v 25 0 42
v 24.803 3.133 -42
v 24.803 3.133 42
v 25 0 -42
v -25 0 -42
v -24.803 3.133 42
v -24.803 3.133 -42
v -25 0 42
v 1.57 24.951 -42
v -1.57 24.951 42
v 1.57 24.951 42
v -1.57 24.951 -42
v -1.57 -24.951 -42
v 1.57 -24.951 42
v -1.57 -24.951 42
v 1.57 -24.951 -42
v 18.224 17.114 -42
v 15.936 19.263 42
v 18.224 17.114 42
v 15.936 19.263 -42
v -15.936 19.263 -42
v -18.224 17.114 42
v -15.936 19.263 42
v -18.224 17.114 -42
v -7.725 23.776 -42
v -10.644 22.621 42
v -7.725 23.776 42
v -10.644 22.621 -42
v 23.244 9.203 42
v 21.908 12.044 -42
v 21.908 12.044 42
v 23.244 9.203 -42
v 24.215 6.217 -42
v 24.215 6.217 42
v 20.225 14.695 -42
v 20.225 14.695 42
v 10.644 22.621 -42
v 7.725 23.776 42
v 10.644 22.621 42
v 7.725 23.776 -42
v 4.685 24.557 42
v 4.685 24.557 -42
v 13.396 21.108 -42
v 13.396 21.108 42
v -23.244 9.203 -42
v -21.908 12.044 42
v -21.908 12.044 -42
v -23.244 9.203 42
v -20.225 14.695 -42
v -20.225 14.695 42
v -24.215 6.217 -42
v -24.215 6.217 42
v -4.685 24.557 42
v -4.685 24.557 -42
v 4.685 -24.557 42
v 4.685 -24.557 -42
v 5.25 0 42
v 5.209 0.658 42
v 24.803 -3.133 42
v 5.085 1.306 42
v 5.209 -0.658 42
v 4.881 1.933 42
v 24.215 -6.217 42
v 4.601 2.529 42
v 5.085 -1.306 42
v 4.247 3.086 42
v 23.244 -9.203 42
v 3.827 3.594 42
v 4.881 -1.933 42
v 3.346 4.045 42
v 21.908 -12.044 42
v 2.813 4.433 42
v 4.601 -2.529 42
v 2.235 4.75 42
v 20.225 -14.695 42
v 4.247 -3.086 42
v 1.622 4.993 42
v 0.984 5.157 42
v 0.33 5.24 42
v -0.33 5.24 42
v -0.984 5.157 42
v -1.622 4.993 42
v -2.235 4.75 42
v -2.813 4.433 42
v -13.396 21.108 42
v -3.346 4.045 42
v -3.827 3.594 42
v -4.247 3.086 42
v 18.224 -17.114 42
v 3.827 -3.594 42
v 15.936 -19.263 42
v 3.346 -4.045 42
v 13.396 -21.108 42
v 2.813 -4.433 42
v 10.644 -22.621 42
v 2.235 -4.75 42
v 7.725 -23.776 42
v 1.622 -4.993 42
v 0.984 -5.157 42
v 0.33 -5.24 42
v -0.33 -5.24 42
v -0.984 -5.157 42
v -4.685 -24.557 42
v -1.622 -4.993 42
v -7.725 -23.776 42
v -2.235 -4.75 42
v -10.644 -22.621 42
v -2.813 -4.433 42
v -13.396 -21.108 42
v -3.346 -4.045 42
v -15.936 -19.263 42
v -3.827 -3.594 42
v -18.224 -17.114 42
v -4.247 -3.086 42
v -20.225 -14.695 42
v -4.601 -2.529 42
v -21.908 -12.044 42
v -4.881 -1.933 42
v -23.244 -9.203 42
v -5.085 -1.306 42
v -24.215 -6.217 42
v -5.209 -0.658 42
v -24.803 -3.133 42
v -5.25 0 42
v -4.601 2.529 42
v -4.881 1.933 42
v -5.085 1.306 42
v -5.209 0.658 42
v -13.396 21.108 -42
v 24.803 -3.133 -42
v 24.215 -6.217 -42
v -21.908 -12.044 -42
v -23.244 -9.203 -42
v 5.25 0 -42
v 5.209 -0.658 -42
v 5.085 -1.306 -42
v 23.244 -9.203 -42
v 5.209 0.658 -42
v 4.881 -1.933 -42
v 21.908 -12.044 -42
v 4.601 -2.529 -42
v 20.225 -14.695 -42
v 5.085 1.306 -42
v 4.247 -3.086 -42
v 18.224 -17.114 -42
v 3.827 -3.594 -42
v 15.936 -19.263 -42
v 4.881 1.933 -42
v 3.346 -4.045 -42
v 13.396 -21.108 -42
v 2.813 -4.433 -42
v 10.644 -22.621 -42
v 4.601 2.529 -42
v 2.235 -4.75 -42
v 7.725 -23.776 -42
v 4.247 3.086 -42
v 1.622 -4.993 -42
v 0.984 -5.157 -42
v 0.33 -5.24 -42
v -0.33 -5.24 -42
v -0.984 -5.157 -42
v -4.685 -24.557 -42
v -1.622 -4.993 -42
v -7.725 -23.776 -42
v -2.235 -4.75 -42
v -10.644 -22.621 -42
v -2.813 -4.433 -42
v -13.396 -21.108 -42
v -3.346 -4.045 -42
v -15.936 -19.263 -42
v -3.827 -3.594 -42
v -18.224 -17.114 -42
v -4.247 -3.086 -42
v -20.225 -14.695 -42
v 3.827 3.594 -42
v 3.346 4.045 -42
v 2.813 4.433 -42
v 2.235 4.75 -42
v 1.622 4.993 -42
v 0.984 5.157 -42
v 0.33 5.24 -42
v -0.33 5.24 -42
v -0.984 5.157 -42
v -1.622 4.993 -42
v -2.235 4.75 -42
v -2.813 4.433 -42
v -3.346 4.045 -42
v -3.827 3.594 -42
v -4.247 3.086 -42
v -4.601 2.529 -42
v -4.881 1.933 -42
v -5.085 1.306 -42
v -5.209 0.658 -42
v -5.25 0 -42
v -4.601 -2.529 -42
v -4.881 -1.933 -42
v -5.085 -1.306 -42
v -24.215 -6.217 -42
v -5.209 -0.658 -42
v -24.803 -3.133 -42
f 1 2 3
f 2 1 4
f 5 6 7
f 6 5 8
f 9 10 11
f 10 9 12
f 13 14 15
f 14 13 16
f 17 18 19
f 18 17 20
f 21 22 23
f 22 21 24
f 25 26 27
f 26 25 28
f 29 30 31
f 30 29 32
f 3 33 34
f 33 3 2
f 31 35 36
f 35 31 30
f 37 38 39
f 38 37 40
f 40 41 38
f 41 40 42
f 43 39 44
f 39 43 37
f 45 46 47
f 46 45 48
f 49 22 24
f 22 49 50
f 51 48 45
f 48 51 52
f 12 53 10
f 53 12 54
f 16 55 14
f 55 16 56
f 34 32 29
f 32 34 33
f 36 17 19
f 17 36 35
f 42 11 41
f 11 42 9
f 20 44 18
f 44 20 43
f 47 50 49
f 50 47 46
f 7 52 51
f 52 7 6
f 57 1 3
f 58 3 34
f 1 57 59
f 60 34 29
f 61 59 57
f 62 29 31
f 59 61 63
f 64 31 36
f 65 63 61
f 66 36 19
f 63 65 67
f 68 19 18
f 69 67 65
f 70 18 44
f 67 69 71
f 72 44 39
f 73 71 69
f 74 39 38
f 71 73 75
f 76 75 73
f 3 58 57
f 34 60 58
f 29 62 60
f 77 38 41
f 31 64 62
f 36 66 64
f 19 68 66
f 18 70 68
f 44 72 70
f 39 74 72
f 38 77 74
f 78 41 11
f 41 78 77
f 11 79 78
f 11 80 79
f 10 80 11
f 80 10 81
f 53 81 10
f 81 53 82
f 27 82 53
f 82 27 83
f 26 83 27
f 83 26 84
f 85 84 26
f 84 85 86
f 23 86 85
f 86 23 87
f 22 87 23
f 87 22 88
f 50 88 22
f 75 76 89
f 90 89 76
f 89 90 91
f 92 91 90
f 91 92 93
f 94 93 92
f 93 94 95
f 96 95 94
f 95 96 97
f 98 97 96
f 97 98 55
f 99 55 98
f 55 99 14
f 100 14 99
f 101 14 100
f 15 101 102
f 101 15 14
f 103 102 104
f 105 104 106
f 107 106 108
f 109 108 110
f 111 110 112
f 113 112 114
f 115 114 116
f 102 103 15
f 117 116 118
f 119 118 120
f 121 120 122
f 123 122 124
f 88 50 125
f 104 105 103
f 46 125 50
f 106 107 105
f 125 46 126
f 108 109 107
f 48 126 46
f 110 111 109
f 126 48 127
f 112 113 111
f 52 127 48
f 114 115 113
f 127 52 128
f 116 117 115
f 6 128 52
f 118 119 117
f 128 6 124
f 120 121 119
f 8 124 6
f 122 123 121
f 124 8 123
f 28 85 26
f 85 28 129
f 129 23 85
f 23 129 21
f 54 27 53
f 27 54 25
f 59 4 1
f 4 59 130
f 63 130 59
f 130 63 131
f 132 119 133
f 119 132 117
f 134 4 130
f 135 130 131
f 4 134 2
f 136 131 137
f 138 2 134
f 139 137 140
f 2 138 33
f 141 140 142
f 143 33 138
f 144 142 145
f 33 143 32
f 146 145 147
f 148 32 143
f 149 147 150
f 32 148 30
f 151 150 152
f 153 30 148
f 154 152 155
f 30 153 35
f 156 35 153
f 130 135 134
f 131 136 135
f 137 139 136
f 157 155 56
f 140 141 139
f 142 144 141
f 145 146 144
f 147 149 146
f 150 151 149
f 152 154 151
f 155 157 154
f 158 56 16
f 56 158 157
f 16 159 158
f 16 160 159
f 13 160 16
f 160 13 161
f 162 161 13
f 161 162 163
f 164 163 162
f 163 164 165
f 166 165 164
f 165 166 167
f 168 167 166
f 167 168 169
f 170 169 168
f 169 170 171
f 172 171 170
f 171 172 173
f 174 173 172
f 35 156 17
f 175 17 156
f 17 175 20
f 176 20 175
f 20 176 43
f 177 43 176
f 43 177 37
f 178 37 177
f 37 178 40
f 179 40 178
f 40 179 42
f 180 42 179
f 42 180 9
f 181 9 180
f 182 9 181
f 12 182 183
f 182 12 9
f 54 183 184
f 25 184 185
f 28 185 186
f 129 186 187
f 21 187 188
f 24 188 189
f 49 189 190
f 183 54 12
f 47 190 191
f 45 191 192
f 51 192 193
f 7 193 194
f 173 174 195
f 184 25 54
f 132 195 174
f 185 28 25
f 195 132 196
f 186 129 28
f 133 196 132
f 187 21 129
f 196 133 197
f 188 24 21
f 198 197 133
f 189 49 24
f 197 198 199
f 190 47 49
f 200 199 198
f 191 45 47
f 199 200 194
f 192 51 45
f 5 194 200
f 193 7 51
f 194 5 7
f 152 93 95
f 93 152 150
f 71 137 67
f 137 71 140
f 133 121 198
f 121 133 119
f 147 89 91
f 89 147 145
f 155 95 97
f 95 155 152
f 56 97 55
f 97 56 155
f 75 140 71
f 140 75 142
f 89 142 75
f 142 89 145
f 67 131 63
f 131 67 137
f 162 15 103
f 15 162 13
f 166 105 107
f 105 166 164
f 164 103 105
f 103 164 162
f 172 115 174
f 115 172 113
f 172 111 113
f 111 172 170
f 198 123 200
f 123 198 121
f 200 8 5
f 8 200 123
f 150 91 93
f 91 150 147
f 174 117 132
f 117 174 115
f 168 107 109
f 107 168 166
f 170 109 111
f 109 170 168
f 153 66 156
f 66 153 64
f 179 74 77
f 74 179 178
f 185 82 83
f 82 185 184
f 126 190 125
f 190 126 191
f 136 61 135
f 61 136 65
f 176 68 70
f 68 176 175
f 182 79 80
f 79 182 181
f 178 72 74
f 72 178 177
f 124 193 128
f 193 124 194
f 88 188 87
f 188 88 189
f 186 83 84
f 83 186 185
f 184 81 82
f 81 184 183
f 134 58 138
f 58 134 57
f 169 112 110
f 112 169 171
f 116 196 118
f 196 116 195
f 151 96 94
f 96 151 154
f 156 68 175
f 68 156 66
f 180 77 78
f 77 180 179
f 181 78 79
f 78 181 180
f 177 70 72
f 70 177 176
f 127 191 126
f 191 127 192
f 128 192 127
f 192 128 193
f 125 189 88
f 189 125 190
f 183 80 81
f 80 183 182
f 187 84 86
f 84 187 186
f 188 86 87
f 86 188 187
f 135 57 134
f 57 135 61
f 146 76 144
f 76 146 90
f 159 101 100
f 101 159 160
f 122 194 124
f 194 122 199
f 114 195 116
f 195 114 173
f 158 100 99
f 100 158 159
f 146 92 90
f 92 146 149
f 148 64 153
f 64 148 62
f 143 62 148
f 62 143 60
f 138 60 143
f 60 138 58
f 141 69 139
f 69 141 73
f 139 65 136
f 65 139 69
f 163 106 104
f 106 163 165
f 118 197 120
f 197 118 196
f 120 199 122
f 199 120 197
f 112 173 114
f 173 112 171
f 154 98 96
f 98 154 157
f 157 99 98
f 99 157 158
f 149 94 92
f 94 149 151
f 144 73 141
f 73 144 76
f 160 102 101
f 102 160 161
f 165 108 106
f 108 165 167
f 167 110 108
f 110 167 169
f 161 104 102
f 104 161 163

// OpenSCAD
$fn = 50;


difference() {
	union() {
		translate(v = [0, 0, -42.0000000000]) {
			cylinder(h = 84, r = 25.0000000000);
		}
	}
	union() {
		translate(v = [0, 0, -100.0000000000]) {
			cylinder(h = 200, r = 5.2500000000);
		}
	}
}
